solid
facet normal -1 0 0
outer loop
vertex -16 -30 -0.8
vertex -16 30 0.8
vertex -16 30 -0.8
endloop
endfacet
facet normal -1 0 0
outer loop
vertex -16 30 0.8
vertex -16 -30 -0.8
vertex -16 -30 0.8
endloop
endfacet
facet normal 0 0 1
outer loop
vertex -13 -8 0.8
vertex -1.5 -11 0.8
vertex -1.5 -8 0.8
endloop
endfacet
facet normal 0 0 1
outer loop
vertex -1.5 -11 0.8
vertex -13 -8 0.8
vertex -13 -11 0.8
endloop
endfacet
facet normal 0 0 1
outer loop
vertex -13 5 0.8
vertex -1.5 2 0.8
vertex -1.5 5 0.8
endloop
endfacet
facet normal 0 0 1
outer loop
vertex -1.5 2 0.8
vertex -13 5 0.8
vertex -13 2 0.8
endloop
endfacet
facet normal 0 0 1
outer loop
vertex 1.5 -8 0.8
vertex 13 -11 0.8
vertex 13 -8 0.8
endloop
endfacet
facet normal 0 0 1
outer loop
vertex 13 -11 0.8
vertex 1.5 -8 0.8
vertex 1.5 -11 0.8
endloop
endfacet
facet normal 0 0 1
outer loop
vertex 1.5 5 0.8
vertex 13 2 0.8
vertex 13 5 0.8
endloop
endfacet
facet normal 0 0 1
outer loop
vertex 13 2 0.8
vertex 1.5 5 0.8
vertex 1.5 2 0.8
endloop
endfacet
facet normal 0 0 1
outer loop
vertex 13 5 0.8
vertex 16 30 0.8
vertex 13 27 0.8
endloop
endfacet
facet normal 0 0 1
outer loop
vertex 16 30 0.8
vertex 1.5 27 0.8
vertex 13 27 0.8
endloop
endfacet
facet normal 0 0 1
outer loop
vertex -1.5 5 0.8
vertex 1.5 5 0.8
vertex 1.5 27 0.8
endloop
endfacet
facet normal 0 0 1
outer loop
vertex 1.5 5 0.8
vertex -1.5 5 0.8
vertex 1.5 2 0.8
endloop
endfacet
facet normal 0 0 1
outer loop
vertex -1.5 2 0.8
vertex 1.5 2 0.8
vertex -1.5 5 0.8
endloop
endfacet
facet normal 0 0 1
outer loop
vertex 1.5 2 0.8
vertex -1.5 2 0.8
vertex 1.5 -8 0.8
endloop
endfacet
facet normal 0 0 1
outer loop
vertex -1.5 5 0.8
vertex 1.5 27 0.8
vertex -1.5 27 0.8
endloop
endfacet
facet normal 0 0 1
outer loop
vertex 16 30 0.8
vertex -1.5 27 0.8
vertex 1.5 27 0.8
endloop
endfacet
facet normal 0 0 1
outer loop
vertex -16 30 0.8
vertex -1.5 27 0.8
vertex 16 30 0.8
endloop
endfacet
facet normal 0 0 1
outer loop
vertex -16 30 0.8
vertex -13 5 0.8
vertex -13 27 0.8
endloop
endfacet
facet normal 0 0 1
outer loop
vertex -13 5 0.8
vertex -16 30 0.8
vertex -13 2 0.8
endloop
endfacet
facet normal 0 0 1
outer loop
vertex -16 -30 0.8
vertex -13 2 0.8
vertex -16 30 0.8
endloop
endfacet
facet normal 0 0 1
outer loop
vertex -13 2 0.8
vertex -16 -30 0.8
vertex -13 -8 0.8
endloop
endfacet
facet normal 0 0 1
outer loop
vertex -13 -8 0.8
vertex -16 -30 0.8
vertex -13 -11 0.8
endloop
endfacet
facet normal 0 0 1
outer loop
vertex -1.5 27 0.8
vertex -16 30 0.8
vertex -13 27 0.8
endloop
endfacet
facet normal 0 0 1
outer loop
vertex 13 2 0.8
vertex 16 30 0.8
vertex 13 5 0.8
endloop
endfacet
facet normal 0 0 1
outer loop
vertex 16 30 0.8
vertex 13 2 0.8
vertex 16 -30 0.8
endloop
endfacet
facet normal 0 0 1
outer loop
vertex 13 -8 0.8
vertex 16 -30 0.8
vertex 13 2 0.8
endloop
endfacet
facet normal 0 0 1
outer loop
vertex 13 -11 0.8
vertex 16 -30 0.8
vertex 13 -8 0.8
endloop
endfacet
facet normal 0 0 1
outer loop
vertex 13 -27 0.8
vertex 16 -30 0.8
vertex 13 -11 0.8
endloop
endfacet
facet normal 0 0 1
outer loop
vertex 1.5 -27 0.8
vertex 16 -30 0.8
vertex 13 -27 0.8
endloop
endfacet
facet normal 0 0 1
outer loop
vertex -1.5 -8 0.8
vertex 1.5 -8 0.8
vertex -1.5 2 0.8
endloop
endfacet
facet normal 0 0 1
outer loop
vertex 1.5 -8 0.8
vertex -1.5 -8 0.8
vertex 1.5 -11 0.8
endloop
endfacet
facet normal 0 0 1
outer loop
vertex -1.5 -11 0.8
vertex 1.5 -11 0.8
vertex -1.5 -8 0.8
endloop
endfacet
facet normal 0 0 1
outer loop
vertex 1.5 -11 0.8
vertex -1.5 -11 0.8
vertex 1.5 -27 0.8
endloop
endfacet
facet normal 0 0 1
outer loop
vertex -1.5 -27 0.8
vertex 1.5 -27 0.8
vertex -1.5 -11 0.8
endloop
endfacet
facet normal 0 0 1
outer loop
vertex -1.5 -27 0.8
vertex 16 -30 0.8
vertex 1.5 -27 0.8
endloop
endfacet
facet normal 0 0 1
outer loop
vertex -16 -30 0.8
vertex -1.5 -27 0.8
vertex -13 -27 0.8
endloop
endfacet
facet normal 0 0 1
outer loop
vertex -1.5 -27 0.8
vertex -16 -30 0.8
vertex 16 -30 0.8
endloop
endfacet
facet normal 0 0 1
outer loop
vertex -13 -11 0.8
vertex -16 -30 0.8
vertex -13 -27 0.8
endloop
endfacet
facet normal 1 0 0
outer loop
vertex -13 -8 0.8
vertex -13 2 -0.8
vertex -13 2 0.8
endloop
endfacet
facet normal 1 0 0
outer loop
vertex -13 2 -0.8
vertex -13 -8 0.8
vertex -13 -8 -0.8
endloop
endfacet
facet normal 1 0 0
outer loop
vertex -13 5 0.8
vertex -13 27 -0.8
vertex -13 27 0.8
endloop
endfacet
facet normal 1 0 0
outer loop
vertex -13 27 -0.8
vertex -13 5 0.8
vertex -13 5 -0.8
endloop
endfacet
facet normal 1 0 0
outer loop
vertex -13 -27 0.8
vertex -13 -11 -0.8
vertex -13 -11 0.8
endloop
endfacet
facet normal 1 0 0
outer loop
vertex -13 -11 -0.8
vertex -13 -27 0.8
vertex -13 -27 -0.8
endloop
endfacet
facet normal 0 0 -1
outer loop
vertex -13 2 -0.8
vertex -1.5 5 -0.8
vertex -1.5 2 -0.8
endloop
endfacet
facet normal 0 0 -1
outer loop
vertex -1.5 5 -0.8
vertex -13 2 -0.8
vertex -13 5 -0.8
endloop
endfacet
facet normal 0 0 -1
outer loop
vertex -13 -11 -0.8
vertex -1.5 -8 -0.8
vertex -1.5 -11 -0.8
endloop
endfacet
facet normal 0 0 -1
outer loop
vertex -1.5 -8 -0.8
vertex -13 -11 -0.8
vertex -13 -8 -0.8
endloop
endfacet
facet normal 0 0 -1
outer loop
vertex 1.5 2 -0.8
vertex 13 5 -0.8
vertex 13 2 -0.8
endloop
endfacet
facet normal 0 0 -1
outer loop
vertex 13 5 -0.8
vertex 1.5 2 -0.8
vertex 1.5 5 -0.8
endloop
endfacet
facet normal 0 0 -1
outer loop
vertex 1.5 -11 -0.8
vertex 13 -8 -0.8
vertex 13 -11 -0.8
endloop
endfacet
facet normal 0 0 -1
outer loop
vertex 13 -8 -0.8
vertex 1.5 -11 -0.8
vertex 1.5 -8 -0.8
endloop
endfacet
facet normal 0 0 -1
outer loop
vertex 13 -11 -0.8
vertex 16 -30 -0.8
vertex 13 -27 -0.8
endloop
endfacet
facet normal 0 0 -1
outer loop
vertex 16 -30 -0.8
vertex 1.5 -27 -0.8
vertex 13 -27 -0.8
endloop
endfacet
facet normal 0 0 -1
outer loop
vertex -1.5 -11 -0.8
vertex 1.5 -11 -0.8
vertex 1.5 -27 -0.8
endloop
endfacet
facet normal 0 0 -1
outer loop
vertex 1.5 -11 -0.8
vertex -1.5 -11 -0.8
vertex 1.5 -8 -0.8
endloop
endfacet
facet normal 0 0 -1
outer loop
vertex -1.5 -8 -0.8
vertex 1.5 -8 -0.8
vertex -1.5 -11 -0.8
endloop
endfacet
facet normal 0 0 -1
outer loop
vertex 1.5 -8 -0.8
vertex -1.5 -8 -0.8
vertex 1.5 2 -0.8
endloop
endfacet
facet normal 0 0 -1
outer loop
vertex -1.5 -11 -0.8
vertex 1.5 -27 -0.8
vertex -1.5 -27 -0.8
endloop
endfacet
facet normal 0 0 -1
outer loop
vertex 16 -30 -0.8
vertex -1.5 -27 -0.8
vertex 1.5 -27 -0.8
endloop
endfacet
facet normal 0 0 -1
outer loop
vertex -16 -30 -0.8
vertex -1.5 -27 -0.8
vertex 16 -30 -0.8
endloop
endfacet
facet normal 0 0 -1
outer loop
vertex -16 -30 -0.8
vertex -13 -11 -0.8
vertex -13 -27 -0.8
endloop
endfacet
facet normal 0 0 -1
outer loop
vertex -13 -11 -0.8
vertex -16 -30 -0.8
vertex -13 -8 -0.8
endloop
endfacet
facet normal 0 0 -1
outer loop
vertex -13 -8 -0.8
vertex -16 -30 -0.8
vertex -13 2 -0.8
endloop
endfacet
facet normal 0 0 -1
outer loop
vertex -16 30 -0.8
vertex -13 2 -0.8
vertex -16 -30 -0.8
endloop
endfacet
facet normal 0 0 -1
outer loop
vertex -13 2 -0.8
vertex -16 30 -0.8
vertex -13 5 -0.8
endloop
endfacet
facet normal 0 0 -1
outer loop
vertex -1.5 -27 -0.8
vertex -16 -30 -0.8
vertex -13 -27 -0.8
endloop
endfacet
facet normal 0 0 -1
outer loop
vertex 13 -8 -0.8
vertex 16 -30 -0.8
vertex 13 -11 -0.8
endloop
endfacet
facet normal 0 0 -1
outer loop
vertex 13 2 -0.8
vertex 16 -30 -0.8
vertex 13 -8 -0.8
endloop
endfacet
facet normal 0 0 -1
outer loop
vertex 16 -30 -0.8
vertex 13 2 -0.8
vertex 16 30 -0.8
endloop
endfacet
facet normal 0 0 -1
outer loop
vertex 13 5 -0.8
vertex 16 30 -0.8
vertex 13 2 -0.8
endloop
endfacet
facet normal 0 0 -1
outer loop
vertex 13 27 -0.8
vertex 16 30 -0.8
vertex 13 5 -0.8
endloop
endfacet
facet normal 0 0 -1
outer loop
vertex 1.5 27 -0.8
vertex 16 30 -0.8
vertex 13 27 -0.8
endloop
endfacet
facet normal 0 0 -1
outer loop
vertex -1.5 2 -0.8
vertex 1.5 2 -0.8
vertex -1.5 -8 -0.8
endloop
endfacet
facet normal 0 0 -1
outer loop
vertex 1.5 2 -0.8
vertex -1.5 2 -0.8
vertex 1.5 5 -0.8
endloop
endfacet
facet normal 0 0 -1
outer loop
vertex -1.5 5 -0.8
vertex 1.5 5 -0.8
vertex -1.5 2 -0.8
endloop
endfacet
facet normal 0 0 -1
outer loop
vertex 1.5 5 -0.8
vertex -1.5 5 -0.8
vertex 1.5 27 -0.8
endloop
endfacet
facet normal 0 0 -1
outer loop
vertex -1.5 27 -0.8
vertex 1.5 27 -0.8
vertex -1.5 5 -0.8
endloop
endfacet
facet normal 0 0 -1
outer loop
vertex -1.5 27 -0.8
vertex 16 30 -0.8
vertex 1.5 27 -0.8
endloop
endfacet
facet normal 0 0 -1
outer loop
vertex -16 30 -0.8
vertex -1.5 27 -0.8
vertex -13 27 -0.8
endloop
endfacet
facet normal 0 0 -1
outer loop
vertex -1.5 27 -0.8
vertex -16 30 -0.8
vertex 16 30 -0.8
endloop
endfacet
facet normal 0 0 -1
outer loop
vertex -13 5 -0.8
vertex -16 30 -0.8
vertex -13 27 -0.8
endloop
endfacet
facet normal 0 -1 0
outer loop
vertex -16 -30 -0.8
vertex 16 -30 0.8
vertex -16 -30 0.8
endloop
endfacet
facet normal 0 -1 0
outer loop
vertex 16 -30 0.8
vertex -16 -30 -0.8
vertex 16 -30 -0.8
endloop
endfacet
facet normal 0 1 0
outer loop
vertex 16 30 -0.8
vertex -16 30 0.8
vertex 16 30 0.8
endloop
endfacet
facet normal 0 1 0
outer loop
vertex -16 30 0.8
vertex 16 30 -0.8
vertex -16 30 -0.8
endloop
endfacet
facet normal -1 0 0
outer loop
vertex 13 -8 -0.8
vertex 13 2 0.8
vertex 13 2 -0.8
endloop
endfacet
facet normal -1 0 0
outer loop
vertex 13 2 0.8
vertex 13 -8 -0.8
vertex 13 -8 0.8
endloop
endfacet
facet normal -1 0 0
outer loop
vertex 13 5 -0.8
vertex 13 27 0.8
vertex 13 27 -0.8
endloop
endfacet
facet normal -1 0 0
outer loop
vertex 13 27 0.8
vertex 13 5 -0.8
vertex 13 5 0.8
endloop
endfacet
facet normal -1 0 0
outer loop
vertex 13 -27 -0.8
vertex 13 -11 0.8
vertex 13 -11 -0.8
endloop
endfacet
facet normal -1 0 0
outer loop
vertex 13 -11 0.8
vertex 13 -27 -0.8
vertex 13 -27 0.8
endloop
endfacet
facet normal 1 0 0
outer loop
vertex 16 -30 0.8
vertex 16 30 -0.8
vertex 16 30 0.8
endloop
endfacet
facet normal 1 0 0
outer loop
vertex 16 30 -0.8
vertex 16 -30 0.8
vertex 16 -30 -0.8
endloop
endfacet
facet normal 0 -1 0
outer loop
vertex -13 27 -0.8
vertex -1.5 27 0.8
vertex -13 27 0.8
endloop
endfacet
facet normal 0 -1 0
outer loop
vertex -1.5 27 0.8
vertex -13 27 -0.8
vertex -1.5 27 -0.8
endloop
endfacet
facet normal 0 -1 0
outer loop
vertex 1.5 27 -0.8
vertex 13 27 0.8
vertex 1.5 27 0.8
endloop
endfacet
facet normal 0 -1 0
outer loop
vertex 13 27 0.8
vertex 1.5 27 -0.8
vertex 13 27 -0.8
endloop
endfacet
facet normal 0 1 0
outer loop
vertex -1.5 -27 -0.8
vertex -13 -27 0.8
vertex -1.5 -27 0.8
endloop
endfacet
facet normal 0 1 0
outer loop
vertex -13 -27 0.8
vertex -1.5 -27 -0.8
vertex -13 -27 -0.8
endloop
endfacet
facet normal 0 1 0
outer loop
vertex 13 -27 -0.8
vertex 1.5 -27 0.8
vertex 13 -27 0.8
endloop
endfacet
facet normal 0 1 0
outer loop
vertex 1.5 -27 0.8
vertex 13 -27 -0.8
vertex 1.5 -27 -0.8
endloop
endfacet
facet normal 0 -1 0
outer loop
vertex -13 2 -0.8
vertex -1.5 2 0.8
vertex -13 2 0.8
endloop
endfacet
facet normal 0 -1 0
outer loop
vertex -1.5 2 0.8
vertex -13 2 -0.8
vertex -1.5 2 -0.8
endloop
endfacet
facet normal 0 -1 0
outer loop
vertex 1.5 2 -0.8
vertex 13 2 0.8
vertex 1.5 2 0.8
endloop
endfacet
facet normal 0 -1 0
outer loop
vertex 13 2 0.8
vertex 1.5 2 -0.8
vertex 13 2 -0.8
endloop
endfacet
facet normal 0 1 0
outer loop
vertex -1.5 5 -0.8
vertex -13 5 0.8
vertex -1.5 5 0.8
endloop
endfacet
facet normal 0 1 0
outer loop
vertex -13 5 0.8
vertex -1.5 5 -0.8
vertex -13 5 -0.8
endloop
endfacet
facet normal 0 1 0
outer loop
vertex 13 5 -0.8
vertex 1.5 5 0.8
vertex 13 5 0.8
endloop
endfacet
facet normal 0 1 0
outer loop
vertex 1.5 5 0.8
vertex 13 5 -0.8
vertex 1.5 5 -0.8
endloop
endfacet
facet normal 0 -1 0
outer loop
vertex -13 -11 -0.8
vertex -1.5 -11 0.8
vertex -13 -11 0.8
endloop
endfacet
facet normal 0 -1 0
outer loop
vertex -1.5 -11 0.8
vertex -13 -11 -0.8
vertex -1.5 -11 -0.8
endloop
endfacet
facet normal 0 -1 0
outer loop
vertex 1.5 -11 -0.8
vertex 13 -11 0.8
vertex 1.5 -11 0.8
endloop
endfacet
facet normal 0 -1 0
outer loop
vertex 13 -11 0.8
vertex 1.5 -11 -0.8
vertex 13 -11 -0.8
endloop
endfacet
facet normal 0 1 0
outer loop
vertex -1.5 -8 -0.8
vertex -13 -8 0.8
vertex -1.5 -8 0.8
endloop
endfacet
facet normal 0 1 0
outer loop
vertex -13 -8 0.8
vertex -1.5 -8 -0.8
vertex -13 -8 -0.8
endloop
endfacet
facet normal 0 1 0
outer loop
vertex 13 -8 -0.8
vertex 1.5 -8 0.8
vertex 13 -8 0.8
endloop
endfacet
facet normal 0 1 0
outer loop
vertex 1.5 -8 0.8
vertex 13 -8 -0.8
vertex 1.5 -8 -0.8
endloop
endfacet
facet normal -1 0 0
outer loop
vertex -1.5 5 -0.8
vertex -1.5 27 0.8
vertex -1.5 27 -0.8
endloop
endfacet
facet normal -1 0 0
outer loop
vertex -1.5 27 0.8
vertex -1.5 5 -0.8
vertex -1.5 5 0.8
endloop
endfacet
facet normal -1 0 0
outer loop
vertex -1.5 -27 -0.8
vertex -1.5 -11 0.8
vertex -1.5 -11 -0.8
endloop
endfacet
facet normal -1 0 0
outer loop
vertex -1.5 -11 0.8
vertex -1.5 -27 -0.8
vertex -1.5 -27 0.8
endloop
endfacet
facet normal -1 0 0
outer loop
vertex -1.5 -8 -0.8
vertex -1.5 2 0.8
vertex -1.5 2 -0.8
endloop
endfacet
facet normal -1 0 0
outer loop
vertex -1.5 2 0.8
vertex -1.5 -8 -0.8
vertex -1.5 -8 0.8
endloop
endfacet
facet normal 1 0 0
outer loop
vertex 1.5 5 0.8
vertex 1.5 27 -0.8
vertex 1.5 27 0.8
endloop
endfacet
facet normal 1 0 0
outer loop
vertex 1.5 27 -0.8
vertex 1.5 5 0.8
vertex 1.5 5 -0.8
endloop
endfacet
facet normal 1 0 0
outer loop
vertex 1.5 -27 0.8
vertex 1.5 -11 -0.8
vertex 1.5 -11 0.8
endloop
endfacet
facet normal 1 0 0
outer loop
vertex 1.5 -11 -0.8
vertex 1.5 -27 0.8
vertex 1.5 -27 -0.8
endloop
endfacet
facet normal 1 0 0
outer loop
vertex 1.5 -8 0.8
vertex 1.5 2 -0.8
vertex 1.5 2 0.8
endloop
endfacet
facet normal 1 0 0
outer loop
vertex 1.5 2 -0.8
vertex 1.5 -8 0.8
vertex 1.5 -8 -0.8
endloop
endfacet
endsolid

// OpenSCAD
include <RemoteControlModules.scad>

_sw = 32;
_sl = 60;
_sh = 1.6;

RemoteControlPCBSpacer(_sw, _sl, _sh);
